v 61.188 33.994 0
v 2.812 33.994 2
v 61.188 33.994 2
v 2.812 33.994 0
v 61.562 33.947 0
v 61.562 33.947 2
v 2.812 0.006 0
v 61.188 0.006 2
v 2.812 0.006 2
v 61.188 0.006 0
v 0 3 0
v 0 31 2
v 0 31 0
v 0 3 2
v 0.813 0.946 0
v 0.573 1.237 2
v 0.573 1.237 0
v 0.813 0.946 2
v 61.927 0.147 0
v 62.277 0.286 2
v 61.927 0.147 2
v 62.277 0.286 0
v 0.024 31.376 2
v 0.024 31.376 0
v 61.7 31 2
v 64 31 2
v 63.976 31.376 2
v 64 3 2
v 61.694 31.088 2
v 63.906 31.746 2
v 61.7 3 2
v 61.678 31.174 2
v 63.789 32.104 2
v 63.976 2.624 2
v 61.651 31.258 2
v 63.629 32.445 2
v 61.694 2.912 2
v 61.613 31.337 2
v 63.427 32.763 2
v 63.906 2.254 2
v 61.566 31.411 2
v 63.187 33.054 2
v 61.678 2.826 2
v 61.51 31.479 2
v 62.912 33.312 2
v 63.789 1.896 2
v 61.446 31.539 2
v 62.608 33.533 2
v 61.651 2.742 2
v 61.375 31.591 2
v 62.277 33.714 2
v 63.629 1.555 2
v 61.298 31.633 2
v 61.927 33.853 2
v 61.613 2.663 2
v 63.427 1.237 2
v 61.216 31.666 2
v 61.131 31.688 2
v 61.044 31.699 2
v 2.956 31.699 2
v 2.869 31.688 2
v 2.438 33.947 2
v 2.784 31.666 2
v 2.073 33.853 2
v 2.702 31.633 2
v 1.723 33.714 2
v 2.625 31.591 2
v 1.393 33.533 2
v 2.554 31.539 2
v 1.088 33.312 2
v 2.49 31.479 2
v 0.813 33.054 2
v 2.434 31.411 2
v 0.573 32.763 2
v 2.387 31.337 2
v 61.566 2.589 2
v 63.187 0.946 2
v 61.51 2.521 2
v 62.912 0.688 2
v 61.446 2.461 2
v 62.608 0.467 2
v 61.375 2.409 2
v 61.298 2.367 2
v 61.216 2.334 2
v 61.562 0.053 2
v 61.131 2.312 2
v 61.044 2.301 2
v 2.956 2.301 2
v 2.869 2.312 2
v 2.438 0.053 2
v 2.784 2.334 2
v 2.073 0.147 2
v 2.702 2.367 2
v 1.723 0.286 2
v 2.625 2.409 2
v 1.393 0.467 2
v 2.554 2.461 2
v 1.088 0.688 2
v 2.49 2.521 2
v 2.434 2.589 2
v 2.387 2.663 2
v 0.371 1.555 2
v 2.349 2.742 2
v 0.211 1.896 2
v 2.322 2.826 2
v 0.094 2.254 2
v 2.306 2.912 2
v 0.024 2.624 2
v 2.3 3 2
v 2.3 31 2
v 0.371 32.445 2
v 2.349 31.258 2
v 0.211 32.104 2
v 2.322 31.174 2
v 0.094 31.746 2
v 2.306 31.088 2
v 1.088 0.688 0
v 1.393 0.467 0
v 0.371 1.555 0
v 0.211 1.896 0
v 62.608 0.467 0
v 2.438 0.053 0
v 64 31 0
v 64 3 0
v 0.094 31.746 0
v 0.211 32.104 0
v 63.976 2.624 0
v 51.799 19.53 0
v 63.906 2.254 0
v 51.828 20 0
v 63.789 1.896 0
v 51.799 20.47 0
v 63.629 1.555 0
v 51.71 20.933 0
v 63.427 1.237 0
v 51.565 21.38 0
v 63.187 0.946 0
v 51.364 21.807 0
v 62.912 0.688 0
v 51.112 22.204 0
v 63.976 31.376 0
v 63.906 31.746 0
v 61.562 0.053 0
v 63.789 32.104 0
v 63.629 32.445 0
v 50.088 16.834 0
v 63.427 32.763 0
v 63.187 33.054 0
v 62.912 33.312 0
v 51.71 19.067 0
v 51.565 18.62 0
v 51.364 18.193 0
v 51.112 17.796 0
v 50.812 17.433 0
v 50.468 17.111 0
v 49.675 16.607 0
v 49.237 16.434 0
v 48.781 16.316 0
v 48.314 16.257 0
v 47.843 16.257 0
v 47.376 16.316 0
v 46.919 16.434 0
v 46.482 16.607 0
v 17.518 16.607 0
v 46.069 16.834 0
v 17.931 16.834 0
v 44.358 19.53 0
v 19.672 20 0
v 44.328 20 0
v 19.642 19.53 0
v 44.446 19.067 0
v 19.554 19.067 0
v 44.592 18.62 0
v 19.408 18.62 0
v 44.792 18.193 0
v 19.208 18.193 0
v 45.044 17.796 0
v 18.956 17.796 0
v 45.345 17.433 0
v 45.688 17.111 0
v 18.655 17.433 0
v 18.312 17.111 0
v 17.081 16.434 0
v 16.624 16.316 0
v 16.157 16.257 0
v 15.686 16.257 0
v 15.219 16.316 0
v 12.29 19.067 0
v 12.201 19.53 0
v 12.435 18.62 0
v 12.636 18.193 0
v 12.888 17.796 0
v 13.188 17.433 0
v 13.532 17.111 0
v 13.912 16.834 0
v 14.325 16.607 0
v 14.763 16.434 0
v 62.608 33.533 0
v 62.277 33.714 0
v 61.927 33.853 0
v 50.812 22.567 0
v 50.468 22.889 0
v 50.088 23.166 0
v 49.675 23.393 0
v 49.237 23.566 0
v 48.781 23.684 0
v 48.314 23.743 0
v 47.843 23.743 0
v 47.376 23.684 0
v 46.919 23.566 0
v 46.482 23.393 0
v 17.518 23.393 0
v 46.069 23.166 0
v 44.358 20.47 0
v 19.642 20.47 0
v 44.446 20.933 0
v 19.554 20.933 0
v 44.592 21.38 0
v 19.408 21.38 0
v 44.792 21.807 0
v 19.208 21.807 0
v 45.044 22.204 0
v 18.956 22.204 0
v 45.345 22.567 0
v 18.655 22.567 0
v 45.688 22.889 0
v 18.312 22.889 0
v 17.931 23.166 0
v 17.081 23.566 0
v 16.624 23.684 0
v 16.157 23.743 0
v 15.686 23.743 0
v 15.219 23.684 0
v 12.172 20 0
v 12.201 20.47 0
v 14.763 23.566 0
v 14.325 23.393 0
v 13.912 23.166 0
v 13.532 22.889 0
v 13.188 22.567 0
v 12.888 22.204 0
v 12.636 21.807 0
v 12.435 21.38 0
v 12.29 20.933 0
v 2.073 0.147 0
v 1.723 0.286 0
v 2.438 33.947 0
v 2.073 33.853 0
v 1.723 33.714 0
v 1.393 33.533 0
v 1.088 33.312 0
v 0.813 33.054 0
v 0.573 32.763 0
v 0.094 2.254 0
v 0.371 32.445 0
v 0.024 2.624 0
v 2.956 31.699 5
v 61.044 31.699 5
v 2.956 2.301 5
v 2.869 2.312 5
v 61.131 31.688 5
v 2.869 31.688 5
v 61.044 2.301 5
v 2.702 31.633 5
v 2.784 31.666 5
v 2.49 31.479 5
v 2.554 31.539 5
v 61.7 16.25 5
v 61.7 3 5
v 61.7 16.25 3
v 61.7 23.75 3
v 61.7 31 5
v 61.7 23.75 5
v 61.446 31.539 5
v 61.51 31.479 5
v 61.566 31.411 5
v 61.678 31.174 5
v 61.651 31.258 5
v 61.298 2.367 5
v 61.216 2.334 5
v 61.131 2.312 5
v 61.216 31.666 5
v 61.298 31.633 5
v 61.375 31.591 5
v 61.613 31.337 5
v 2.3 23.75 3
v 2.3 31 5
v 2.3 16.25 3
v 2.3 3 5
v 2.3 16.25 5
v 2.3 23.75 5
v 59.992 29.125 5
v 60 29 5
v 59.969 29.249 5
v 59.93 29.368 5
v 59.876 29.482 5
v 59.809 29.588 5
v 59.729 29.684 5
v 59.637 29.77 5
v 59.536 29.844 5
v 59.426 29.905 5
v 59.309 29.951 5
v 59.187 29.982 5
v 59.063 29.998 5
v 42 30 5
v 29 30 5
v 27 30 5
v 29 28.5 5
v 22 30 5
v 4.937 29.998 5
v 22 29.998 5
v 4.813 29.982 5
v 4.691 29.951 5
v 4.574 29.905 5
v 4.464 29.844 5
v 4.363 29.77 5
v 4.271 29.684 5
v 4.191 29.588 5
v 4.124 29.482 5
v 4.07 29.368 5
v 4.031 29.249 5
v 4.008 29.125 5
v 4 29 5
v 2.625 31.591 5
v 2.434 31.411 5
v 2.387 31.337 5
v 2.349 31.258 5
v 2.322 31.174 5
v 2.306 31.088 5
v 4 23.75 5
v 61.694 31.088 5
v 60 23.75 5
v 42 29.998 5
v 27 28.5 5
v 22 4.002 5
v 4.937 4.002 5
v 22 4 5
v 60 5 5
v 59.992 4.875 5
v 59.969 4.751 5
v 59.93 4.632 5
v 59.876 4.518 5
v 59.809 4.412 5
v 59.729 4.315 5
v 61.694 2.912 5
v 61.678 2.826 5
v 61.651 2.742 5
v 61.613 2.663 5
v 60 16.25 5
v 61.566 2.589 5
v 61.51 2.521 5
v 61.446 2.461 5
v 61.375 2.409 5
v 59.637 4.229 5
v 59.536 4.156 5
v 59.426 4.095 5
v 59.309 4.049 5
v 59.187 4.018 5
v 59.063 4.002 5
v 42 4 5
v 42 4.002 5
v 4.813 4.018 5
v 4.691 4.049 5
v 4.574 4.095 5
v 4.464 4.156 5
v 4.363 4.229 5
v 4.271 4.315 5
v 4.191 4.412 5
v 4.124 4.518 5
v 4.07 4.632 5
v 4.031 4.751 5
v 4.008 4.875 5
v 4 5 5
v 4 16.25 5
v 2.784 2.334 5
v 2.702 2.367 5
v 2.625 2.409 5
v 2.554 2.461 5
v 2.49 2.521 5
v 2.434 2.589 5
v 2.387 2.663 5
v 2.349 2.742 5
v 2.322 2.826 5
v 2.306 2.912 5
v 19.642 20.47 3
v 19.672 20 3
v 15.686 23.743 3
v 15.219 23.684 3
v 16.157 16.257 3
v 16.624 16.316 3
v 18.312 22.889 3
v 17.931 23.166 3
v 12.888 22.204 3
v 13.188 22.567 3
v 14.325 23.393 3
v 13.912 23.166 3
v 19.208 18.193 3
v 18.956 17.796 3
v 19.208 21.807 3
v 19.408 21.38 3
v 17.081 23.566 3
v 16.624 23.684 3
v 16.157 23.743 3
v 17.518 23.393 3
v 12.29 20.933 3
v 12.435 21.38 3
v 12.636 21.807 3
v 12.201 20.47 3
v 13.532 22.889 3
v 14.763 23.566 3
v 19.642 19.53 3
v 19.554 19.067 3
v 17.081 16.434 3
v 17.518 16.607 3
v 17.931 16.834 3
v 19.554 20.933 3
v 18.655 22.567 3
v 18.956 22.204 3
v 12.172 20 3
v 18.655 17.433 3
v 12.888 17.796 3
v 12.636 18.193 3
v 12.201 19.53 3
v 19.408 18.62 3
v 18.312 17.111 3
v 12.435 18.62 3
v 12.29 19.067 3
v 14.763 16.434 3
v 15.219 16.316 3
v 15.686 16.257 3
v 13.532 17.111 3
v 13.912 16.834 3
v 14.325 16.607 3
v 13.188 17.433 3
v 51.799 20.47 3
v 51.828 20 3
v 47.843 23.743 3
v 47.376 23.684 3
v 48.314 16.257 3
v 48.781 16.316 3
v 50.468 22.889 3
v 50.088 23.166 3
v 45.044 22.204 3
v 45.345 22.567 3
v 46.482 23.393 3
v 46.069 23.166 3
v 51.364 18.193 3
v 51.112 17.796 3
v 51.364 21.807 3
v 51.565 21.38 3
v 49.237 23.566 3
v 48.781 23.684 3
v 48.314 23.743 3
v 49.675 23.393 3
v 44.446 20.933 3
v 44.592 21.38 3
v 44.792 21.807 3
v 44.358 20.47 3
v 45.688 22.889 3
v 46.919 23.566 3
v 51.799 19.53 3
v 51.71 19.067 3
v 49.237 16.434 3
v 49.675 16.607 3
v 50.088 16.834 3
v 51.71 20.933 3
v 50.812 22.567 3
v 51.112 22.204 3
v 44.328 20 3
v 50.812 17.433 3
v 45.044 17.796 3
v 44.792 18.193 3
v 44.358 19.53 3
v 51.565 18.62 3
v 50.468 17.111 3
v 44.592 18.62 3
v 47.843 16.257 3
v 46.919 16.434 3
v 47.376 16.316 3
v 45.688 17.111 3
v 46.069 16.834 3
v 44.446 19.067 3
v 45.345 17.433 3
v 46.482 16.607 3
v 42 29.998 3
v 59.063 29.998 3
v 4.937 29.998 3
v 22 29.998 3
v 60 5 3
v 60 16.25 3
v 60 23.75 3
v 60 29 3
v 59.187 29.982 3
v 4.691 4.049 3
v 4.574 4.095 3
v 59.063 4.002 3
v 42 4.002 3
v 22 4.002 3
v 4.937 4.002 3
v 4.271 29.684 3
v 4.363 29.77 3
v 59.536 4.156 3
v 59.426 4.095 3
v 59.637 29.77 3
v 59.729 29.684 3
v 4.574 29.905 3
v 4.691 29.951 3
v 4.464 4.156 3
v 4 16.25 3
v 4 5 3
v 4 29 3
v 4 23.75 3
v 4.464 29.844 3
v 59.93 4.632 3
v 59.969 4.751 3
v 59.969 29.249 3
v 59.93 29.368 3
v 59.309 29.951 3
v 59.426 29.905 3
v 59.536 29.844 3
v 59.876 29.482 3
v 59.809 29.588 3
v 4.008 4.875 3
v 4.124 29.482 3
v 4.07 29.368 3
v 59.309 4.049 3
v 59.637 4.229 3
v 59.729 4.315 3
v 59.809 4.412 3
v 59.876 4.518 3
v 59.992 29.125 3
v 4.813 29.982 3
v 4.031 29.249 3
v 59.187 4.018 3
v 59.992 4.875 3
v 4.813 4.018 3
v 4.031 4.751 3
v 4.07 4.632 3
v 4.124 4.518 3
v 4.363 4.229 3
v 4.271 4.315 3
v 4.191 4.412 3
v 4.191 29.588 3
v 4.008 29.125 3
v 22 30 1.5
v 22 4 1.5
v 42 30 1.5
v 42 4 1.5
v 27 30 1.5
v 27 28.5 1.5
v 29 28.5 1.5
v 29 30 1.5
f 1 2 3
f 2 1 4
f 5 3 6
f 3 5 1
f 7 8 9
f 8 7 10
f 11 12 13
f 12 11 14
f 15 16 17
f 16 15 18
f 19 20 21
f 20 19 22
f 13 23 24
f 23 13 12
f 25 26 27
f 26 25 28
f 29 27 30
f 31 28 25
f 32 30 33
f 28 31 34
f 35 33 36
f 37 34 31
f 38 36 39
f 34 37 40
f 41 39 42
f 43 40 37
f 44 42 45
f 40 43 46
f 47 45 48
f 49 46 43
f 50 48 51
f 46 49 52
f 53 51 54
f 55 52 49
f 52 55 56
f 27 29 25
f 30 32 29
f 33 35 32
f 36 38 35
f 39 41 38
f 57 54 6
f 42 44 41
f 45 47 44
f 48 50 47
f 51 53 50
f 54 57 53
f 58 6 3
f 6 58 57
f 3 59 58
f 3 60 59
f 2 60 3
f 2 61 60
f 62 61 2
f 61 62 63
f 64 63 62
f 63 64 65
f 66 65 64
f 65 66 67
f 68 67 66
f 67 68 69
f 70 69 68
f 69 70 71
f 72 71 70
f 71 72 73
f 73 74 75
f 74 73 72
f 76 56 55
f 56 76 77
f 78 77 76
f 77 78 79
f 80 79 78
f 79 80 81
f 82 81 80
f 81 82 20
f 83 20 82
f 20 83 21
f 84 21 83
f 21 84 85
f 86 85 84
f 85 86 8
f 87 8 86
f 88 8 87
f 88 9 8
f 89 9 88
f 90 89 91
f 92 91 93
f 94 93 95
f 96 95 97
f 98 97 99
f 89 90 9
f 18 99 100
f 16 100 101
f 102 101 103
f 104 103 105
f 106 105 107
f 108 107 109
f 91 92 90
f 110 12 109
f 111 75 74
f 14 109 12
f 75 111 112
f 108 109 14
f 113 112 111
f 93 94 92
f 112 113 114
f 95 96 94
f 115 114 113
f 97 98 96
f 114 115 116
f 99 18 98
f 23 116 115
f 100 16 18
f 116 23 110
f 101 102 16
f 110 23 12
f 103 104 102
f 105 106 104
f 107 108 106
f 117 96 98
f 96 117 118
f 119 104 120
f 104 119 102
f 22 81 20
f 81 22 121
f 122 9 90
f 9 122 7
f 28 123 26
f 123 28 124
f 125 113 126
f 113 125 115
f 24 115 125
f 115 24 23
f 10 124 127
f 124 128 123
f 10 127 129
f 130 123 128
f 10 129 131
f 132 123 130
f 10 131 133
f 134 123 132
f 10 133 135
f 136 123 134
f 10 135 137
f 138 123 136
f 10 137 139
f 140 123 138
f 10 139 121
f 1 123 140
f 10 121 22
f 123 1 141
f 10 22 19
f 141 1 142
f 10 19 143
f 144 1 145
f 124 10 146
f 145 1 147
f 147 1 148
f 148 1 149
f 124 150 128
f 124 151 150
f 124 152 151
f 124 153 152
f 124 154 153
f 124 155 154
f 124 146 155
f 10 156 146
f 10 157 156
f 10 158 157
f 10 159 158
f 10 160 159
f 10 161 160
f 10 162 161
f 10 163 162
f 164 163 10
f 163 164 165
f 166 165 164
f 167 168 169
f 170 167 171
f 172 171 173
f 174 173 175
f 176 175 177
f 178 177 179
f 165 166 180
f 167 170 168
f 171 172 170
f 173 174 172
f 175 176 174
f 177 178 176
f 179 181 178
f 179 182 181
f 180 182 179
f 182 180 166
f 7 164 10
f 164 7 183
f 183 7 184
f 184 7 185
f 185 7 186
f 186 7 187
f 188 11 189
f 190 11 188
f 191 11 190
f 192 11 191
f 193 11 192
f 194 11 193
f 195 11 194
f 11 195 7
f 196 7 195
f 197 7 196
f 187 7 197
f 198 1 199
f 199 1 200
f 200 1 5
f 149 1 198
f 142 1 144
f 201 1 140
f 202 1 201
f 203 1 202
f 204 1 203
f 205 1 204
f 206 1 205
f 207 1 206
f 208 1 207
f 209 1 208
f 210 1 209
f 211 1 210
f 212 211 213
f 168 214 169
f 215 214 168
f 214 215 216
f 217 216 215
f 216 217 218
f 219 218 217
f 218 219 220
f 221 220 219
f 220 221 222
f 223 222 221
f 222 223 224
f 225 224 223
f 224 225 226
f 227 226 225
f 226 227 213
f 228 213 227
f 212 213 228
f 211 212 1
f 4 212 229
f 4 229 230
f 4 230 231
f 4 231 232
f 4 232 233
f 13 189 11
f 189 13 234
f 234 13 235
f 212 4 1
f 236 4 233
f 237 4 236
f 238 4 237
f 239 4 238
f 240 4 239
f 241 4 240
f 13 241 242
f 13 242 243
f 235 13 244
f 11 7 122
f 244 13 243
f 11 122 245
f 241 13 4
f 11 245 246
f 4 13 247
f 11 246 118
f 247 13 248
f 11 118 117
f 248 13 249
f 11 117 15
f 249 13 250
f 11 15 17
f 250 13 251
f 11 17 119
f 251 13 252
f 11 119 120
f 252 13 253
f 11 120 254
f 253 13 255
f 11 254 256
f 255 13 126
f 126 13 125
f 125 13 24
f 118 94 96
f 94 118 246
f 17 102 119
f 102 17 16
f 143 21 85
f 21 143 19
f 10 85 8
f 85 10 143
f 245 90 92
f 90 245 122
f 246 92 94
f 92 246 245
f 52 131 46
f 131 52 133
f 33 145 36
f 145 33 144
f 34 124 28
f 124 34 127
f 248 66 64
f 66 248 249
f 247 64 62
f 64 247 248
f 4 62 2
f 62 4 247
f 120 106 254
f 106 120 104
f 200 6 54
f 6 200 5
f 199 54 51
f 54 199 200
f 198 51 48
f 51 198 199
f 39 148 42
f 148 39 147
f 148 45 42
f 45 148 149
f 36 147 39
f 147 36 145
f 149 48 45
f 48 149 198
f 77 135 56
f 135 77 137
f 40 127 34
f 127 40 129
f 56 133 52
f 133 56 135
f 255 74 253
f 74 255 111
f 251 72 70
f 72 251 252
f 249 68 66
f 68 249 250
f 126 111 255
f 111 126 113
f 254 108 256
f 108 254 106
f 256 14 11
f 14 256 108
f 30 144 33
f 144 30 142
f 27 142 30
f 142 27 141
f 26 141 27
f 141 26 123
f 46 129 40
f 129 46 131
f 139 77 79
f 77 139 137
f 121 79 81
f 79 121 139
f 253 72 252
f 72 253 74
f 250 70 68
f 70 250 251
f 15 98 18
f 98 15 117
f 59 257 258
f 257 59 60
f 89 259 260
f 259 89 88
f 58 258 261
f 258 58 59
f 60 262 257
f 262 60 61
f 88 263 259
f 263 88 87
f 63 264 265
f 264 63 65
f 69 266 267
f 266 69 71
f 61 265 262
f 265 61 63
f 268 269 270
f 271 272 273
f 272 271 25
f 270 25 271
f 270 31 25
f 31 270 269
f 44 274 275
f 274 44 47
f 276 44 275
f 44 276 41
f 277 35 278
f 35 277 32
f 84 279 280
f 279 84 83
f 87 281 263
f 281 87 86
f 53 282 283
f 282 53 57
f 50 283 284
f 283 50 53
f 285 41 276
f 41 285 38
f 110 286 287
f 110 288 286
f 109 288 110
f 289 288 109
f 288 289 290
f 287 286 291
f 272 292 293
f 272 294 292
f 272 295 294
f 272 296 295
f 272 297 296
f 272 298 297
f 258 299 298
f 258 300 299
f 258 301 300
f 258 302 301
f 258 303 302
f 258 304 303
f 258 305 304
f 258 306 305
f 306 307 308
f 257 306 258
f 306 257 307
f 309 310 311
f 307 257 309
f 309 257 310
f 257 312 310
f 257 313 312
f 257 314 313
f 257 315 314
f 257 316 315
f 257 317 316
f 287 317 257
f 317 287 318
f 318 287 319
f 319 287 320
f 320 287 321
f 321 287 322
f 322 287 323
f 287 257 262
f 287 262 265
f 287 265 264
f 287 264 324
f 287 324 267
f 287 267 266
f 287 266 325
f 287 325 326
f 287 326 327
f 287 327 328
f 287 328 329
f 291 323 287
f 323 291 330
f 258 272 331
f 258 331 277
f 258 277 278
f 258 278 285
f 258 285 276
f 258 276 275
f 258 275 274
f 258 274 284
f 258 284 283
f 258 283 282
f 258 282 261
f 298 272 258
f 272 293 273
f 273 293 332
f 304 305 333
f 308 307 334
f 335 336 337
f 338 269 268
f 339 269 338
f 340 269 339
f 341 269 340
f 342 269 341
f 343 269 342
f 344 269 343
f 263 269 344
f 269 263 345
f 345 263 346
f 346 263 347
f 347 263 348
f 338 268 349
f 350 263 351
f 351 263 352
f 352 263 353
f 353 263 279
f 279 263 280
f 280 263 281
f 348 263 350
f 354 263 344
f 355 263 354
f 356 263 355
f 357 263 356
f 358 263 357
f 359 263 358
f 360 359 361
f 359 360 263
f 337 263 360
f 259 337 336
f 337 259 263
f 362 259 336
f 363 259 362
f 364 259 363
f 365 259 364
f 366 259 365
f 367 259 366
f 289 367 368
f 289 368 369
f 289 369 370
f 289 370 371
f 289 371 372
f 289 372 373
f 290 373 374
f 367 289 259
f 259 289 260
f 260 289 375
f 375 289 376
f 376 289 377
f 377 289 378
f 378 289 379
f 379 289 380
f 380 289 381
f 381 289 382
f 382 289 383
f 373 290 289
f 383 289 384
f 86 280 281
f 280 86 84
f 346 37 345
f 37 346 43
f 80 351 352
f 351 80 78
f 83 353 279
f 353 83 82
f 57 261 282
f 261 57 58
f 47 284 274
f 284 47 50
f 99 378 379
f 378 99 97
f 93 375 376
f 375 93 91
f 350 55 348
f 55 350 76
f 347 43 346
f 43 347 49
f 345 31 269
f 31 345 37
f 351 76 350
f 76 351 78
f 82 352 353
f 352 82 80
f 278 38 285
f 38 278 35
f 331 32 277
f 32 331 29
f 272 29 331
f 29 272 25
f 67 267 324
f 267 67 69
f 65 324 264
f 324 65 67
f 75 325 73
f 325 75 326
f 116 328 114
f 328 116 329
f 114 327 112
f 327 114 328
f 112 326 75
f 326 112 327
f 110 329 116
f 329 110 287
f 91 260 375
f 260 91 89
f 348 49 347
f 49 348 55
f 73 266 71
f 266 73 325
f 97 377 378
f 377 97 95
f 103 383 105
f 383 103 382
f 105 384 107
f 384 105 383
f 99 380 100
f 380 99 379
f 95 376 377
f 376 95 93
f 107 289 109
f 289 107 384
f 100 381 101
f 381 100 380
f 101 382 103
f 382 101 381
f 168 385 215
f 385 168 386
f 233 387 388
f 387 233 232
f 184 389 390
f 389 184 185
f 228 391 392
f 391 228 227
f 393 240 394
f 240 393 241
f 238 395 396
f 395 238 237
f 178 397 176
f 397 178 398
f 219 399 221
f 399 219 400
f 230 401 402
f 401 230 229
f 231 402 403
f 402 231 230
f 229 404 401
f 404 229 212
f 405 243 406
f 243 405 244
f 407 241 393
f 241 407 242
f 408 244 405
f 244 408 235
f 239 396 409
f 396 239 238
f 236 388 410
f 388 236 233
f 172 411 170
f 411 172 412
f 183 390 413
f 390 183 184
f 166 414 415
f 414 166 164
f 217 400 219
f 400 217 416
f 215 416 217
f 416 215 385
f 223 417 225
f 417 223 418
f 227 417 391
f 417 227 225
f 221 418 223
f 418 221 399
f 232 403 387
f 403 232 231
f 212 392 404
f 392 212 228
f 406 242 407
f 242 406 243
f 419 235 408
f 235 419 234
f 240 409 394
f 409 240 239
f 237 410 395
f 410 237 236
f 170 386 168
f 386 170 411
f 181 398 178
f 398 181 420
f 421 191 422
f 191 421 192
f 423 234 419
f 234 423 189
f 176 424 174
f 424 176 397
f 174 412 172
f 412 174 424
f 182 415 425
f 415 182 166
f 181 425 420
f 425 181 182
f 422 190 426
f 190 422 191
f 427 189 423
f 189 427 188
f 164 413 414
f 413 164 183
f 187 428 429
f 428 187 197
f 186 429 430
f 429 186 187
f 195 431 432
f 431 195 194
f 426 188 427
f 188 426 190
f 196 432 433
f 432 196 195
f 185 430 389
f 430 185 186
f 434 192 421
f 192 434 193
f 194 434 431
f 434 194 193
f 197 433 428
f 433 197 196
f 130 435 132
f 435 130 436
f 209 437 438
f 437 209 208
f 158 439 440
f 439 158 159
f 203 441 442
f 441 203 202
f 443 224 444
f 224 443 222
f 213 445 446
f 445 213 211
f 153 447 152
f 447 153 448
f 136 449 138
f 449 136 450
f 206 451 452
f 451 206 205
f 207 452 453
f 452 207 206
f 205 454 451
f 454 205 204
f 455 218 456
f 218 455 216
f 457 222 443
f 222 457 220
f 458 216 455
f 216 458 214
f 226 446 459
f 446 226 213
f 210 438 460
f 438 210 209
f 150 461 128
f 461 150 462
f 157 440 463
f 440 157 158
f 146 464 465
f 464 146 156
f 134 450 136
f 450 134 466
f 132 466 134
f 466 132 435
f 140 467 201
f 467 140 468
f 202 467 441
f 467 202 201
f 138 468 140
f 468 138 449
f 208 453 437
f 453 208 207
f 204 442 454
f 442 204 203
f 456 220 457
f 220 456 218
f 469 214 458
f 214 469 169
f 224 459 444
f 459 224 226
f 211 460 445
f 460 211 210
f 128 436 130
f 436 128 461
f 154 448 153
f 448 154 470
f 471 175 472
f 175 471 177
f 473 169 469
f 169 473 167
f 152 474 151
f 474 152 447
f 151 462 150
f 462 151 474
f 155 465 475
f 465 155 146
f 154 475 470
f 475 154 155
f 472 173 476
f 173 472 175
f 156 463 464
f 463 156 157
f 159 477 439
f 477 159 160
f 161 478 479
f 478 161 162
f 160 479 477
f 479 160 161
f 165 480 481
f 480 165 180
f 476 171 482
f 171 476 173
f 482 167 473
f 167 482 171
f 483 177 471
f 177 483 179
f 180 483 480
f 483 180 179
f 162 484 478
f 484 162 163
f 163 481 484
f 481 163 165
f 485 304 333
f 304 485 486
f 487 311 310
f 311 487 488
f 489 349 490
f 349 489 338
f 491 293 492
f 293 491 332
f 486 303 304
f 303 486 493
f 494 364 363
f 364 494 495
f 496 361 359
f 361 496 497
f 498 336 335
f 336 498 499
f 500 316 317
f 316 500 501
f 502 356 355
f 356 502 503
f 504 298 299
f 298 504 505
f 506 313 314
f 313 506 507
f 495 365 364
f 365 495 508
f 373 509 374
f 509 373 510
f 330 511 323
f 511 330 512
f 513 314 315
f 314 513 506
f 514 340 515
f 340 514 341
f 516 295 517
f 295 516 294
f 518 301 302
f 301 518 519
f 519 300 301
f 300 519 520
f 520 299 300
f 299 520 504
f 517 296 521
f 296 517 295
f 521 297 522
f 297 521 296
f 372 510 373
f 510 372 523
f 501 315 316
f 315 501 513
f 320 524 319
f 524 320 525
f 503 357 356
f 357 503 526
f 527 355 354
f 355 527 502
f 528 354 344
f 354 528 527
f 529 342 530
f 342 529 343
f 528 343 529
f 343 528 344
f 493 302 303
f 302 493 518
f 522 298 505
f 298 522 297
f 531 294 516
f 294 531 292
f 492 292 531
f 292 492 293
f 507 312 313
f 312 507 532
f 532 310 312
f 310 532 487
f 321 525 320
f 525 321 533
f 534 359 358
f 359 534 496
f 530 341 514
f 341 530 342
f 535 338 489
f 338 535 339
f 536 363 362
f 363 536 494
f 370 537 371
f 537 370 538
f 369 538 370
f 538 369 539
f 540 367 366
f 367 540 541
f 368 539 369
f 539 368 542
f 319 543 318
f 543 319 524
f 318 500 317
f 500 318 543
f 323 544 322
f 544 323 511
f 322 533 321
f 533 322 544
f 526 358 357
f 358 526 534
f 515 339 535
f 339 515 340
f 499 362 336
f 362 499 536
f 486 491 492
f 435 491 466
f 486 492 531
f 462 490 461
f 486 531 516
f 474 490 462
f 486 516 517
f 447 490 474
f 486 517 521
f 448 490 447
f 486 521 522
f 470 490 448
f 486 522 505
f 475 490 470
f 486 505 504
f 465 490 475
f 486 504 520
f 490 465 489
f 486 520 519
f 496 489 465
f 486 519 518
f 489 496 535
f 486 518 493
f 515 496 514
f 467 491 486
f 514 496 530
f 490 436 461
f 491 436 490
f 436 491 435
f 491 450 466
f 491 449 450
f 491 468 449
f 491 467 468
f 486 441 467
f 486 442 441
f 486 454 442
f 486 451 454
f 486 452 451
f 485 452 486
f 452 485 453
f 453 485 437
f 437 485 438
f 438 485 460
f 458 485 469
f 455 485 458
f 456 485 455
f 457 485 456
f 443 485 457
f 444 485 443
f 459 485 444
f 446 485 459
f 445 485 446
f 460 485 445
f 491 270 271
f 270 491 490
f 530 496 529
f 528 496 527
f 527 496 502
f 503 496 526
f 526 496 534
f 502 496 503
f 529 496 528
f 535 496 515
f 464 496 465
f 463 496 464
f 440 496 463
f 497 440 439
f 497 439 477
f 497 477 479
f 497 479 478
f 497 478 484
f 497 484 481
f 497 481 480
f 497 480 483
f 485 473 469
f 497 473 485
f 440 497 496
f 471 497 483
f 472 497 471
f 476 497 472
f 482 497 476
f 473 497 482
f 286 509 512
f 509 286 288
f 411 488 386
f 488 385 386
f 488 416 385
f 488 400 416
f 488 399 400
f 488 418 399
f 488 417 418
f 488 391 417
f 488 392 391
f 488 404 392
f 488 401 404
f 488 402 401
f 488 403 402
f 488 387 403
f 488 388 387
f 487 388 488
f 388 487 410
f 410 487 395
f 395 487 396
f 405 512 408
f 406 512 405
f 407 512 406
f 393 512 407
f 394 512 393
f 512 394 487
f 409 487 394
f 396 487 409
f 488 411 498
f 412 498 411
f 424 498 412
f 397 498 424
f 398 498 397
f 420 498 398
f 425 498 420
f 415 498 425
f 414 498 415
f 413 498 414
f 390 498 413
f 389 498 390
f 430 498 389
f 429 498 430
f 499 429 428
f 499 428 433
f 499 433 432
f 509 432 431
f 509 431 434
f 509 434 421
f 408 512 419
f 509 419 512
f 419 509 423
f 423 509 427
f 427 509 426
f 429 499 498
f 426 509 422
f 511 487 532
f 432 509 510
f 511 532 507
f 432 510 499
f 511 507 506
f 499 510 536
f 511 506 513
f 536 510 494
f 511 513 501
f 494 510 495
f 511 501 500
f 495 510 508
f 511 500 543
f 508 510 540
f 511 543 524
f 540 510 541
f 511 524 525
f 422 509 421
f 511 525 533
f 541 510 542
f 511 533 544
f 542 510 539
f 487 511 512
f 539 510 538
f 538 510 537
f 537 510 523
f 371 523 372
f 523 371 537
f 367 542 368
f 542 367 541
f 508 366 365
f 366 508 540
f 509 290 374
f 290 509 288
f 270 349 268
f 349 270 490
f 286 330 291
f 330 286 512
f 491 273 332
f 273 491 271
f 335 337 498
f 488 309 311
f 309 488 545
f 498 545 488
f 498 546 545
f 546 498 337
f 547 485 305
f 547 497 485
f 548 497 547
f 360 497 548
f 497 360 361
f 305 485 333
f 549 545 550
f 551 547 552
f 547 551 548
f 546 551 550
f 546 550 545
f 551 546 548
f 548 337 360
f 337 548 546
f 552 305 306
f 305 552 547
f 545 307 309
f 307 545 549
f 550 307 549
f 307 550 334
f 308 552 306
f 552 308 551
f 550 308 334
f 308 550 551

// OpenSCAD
// Simple Lid for the Iridium Beacon Cover without Radio Board

$fn=50; // fragments
wall = 2; // cover wall thickness
thickness = 2; // lid end thickness
internal_width = 60; // internal width (X) of the cover
internal_depth = 30; // internal depth (Y) of the cover
gap = 0.3; // clearance gap (per side)
insert_height = 3; // extra height for the lid insert
internal_corner_radius = 1.0; // radius of the internal corner cylinder

sma_r = 3.75; // radius of the hole for the sma connector
sma_x_sep = 1.266 * 25.4; // X separation of the two SMA connectors
sma_y_offset = 3.0; // y offset of the holes for the sma connectors w.r.t. the Y center of the void
sma_wall_thickness = 3.0; // wall thickness around the SMA connectors

relay_recess_width = 20.0; // width of the recess for the relay terminals
relay_wall_thickness = 1.5; // wall thickness across the relay recess

support_x_offset = -4.0; // x offset of the support w.r.t. the X center of the void
support_width = 2.0; // x width of the support
support_depth = 1.5; // y depth of the support

if (gap > internal_corner_radius) echo("Error! Gap cannot be greater than the internal corner radius!");

width = internal_width + (2 * wall); // lid external width (X)
depth = internal_depth + (2 * wall); // lid external depth (Y)

total_height = wall + insert_height; // total height of the lid

sma_1_x = (width / 2) - (sma_x_sep / 2); // x position of sma connector 1
sma_2_x = (width / 2) + (sma_x_sep / 2); // x position of sma connector 2
sma_y = (depth / 2) + sma_y_offset; // y position of the sma connectors

external_corner_radius = internal_corner_radius + wall; // external corner radius

module outer()
{
    translate([external_corner_radius, external_corner_radius, 0])
        minkowski() {
            cube([(width - (2 * external_corner_radius)), (depth - (2 * external_corner_radius)), (thickness / 2)]);
            cylinder(h=(thickness / 2), r=external_corner_radius);
        }
}

module inner()
// Thicker than required to avoid zero thickness joints
{
    translate([external_corner_radius, external_corner_radius, 0])
        minkowski() {
            cube([(width - (2 * external_corner_radius)), (depth - (2 * external_corner_radius)), (total_height / 2)]);
            cylinder(h=(total_height / 2), r=(internal_corner_radius - gap));
        }
}

module recess()
// Thicker than required to avoid zero thickness joints
{
    translate([(internal_corner_radius + wall + wall), (internal_corner_radius + wall + wall), sma_wall_thickness])
        minkowski() {
            cube([(width - (2 * (wall + wall + internal_corner_radius))), (depth - (2 * (wall + wall + internal_corner_radius))), (total_height / 2)]);
            cylinder(h=(total_height / 2), r=internal_corner_radius);
        }
}

module lid()
{
    union() {
        outer();
        inner();
    }
}

module sma_1()
// Cylinder is taller than required to avoid zero thickness skins
{
    translate([sma_1_x, sma_y, -1]) {
        cylinder(h=(total_height + 2),r=sma_r);
    }
}

module sma_2()
// Cylinder is taller than required to avoid zero thickness skins
{
    translate([sma_2_x, sma_y, -1]) {
        cylinder(h=(total_height + 2),r=sma_r);
    }
}

module pcb_slot()
// Cube is taller amd wider than required to avoid zero thickness skins
{
    translate([0, (sma_y - sma_r), sma_wall_thickness]) {
        cube([width, (sma_r * 2), total_height]);
    }
}

module relay_recess()
// Recess is higher than required to avoid zero thickness skins
{
    translate([((width / 2) - (relay_recess_width / 2)), (2 * wall), relay_wall_thickness]) {
        cube([relay_recess_width, (depth - (4 * wall)), total_height]);
    }
}

module support()
{
    translate([((width / 2) + support_x_offset - (support_width / 2)),(depth - ((2 * wall) + support_depth)), 0]) {
        cube([support_width, support_depth, total_height]);
    }
}

module finished_lid()
{
    union() {
        difference() {
            lid();
            sma_1();
            sma_2();
            recess();
            pcb_slot();
            relay_recess();
        }
        support();
    }
}

finished_lid();
